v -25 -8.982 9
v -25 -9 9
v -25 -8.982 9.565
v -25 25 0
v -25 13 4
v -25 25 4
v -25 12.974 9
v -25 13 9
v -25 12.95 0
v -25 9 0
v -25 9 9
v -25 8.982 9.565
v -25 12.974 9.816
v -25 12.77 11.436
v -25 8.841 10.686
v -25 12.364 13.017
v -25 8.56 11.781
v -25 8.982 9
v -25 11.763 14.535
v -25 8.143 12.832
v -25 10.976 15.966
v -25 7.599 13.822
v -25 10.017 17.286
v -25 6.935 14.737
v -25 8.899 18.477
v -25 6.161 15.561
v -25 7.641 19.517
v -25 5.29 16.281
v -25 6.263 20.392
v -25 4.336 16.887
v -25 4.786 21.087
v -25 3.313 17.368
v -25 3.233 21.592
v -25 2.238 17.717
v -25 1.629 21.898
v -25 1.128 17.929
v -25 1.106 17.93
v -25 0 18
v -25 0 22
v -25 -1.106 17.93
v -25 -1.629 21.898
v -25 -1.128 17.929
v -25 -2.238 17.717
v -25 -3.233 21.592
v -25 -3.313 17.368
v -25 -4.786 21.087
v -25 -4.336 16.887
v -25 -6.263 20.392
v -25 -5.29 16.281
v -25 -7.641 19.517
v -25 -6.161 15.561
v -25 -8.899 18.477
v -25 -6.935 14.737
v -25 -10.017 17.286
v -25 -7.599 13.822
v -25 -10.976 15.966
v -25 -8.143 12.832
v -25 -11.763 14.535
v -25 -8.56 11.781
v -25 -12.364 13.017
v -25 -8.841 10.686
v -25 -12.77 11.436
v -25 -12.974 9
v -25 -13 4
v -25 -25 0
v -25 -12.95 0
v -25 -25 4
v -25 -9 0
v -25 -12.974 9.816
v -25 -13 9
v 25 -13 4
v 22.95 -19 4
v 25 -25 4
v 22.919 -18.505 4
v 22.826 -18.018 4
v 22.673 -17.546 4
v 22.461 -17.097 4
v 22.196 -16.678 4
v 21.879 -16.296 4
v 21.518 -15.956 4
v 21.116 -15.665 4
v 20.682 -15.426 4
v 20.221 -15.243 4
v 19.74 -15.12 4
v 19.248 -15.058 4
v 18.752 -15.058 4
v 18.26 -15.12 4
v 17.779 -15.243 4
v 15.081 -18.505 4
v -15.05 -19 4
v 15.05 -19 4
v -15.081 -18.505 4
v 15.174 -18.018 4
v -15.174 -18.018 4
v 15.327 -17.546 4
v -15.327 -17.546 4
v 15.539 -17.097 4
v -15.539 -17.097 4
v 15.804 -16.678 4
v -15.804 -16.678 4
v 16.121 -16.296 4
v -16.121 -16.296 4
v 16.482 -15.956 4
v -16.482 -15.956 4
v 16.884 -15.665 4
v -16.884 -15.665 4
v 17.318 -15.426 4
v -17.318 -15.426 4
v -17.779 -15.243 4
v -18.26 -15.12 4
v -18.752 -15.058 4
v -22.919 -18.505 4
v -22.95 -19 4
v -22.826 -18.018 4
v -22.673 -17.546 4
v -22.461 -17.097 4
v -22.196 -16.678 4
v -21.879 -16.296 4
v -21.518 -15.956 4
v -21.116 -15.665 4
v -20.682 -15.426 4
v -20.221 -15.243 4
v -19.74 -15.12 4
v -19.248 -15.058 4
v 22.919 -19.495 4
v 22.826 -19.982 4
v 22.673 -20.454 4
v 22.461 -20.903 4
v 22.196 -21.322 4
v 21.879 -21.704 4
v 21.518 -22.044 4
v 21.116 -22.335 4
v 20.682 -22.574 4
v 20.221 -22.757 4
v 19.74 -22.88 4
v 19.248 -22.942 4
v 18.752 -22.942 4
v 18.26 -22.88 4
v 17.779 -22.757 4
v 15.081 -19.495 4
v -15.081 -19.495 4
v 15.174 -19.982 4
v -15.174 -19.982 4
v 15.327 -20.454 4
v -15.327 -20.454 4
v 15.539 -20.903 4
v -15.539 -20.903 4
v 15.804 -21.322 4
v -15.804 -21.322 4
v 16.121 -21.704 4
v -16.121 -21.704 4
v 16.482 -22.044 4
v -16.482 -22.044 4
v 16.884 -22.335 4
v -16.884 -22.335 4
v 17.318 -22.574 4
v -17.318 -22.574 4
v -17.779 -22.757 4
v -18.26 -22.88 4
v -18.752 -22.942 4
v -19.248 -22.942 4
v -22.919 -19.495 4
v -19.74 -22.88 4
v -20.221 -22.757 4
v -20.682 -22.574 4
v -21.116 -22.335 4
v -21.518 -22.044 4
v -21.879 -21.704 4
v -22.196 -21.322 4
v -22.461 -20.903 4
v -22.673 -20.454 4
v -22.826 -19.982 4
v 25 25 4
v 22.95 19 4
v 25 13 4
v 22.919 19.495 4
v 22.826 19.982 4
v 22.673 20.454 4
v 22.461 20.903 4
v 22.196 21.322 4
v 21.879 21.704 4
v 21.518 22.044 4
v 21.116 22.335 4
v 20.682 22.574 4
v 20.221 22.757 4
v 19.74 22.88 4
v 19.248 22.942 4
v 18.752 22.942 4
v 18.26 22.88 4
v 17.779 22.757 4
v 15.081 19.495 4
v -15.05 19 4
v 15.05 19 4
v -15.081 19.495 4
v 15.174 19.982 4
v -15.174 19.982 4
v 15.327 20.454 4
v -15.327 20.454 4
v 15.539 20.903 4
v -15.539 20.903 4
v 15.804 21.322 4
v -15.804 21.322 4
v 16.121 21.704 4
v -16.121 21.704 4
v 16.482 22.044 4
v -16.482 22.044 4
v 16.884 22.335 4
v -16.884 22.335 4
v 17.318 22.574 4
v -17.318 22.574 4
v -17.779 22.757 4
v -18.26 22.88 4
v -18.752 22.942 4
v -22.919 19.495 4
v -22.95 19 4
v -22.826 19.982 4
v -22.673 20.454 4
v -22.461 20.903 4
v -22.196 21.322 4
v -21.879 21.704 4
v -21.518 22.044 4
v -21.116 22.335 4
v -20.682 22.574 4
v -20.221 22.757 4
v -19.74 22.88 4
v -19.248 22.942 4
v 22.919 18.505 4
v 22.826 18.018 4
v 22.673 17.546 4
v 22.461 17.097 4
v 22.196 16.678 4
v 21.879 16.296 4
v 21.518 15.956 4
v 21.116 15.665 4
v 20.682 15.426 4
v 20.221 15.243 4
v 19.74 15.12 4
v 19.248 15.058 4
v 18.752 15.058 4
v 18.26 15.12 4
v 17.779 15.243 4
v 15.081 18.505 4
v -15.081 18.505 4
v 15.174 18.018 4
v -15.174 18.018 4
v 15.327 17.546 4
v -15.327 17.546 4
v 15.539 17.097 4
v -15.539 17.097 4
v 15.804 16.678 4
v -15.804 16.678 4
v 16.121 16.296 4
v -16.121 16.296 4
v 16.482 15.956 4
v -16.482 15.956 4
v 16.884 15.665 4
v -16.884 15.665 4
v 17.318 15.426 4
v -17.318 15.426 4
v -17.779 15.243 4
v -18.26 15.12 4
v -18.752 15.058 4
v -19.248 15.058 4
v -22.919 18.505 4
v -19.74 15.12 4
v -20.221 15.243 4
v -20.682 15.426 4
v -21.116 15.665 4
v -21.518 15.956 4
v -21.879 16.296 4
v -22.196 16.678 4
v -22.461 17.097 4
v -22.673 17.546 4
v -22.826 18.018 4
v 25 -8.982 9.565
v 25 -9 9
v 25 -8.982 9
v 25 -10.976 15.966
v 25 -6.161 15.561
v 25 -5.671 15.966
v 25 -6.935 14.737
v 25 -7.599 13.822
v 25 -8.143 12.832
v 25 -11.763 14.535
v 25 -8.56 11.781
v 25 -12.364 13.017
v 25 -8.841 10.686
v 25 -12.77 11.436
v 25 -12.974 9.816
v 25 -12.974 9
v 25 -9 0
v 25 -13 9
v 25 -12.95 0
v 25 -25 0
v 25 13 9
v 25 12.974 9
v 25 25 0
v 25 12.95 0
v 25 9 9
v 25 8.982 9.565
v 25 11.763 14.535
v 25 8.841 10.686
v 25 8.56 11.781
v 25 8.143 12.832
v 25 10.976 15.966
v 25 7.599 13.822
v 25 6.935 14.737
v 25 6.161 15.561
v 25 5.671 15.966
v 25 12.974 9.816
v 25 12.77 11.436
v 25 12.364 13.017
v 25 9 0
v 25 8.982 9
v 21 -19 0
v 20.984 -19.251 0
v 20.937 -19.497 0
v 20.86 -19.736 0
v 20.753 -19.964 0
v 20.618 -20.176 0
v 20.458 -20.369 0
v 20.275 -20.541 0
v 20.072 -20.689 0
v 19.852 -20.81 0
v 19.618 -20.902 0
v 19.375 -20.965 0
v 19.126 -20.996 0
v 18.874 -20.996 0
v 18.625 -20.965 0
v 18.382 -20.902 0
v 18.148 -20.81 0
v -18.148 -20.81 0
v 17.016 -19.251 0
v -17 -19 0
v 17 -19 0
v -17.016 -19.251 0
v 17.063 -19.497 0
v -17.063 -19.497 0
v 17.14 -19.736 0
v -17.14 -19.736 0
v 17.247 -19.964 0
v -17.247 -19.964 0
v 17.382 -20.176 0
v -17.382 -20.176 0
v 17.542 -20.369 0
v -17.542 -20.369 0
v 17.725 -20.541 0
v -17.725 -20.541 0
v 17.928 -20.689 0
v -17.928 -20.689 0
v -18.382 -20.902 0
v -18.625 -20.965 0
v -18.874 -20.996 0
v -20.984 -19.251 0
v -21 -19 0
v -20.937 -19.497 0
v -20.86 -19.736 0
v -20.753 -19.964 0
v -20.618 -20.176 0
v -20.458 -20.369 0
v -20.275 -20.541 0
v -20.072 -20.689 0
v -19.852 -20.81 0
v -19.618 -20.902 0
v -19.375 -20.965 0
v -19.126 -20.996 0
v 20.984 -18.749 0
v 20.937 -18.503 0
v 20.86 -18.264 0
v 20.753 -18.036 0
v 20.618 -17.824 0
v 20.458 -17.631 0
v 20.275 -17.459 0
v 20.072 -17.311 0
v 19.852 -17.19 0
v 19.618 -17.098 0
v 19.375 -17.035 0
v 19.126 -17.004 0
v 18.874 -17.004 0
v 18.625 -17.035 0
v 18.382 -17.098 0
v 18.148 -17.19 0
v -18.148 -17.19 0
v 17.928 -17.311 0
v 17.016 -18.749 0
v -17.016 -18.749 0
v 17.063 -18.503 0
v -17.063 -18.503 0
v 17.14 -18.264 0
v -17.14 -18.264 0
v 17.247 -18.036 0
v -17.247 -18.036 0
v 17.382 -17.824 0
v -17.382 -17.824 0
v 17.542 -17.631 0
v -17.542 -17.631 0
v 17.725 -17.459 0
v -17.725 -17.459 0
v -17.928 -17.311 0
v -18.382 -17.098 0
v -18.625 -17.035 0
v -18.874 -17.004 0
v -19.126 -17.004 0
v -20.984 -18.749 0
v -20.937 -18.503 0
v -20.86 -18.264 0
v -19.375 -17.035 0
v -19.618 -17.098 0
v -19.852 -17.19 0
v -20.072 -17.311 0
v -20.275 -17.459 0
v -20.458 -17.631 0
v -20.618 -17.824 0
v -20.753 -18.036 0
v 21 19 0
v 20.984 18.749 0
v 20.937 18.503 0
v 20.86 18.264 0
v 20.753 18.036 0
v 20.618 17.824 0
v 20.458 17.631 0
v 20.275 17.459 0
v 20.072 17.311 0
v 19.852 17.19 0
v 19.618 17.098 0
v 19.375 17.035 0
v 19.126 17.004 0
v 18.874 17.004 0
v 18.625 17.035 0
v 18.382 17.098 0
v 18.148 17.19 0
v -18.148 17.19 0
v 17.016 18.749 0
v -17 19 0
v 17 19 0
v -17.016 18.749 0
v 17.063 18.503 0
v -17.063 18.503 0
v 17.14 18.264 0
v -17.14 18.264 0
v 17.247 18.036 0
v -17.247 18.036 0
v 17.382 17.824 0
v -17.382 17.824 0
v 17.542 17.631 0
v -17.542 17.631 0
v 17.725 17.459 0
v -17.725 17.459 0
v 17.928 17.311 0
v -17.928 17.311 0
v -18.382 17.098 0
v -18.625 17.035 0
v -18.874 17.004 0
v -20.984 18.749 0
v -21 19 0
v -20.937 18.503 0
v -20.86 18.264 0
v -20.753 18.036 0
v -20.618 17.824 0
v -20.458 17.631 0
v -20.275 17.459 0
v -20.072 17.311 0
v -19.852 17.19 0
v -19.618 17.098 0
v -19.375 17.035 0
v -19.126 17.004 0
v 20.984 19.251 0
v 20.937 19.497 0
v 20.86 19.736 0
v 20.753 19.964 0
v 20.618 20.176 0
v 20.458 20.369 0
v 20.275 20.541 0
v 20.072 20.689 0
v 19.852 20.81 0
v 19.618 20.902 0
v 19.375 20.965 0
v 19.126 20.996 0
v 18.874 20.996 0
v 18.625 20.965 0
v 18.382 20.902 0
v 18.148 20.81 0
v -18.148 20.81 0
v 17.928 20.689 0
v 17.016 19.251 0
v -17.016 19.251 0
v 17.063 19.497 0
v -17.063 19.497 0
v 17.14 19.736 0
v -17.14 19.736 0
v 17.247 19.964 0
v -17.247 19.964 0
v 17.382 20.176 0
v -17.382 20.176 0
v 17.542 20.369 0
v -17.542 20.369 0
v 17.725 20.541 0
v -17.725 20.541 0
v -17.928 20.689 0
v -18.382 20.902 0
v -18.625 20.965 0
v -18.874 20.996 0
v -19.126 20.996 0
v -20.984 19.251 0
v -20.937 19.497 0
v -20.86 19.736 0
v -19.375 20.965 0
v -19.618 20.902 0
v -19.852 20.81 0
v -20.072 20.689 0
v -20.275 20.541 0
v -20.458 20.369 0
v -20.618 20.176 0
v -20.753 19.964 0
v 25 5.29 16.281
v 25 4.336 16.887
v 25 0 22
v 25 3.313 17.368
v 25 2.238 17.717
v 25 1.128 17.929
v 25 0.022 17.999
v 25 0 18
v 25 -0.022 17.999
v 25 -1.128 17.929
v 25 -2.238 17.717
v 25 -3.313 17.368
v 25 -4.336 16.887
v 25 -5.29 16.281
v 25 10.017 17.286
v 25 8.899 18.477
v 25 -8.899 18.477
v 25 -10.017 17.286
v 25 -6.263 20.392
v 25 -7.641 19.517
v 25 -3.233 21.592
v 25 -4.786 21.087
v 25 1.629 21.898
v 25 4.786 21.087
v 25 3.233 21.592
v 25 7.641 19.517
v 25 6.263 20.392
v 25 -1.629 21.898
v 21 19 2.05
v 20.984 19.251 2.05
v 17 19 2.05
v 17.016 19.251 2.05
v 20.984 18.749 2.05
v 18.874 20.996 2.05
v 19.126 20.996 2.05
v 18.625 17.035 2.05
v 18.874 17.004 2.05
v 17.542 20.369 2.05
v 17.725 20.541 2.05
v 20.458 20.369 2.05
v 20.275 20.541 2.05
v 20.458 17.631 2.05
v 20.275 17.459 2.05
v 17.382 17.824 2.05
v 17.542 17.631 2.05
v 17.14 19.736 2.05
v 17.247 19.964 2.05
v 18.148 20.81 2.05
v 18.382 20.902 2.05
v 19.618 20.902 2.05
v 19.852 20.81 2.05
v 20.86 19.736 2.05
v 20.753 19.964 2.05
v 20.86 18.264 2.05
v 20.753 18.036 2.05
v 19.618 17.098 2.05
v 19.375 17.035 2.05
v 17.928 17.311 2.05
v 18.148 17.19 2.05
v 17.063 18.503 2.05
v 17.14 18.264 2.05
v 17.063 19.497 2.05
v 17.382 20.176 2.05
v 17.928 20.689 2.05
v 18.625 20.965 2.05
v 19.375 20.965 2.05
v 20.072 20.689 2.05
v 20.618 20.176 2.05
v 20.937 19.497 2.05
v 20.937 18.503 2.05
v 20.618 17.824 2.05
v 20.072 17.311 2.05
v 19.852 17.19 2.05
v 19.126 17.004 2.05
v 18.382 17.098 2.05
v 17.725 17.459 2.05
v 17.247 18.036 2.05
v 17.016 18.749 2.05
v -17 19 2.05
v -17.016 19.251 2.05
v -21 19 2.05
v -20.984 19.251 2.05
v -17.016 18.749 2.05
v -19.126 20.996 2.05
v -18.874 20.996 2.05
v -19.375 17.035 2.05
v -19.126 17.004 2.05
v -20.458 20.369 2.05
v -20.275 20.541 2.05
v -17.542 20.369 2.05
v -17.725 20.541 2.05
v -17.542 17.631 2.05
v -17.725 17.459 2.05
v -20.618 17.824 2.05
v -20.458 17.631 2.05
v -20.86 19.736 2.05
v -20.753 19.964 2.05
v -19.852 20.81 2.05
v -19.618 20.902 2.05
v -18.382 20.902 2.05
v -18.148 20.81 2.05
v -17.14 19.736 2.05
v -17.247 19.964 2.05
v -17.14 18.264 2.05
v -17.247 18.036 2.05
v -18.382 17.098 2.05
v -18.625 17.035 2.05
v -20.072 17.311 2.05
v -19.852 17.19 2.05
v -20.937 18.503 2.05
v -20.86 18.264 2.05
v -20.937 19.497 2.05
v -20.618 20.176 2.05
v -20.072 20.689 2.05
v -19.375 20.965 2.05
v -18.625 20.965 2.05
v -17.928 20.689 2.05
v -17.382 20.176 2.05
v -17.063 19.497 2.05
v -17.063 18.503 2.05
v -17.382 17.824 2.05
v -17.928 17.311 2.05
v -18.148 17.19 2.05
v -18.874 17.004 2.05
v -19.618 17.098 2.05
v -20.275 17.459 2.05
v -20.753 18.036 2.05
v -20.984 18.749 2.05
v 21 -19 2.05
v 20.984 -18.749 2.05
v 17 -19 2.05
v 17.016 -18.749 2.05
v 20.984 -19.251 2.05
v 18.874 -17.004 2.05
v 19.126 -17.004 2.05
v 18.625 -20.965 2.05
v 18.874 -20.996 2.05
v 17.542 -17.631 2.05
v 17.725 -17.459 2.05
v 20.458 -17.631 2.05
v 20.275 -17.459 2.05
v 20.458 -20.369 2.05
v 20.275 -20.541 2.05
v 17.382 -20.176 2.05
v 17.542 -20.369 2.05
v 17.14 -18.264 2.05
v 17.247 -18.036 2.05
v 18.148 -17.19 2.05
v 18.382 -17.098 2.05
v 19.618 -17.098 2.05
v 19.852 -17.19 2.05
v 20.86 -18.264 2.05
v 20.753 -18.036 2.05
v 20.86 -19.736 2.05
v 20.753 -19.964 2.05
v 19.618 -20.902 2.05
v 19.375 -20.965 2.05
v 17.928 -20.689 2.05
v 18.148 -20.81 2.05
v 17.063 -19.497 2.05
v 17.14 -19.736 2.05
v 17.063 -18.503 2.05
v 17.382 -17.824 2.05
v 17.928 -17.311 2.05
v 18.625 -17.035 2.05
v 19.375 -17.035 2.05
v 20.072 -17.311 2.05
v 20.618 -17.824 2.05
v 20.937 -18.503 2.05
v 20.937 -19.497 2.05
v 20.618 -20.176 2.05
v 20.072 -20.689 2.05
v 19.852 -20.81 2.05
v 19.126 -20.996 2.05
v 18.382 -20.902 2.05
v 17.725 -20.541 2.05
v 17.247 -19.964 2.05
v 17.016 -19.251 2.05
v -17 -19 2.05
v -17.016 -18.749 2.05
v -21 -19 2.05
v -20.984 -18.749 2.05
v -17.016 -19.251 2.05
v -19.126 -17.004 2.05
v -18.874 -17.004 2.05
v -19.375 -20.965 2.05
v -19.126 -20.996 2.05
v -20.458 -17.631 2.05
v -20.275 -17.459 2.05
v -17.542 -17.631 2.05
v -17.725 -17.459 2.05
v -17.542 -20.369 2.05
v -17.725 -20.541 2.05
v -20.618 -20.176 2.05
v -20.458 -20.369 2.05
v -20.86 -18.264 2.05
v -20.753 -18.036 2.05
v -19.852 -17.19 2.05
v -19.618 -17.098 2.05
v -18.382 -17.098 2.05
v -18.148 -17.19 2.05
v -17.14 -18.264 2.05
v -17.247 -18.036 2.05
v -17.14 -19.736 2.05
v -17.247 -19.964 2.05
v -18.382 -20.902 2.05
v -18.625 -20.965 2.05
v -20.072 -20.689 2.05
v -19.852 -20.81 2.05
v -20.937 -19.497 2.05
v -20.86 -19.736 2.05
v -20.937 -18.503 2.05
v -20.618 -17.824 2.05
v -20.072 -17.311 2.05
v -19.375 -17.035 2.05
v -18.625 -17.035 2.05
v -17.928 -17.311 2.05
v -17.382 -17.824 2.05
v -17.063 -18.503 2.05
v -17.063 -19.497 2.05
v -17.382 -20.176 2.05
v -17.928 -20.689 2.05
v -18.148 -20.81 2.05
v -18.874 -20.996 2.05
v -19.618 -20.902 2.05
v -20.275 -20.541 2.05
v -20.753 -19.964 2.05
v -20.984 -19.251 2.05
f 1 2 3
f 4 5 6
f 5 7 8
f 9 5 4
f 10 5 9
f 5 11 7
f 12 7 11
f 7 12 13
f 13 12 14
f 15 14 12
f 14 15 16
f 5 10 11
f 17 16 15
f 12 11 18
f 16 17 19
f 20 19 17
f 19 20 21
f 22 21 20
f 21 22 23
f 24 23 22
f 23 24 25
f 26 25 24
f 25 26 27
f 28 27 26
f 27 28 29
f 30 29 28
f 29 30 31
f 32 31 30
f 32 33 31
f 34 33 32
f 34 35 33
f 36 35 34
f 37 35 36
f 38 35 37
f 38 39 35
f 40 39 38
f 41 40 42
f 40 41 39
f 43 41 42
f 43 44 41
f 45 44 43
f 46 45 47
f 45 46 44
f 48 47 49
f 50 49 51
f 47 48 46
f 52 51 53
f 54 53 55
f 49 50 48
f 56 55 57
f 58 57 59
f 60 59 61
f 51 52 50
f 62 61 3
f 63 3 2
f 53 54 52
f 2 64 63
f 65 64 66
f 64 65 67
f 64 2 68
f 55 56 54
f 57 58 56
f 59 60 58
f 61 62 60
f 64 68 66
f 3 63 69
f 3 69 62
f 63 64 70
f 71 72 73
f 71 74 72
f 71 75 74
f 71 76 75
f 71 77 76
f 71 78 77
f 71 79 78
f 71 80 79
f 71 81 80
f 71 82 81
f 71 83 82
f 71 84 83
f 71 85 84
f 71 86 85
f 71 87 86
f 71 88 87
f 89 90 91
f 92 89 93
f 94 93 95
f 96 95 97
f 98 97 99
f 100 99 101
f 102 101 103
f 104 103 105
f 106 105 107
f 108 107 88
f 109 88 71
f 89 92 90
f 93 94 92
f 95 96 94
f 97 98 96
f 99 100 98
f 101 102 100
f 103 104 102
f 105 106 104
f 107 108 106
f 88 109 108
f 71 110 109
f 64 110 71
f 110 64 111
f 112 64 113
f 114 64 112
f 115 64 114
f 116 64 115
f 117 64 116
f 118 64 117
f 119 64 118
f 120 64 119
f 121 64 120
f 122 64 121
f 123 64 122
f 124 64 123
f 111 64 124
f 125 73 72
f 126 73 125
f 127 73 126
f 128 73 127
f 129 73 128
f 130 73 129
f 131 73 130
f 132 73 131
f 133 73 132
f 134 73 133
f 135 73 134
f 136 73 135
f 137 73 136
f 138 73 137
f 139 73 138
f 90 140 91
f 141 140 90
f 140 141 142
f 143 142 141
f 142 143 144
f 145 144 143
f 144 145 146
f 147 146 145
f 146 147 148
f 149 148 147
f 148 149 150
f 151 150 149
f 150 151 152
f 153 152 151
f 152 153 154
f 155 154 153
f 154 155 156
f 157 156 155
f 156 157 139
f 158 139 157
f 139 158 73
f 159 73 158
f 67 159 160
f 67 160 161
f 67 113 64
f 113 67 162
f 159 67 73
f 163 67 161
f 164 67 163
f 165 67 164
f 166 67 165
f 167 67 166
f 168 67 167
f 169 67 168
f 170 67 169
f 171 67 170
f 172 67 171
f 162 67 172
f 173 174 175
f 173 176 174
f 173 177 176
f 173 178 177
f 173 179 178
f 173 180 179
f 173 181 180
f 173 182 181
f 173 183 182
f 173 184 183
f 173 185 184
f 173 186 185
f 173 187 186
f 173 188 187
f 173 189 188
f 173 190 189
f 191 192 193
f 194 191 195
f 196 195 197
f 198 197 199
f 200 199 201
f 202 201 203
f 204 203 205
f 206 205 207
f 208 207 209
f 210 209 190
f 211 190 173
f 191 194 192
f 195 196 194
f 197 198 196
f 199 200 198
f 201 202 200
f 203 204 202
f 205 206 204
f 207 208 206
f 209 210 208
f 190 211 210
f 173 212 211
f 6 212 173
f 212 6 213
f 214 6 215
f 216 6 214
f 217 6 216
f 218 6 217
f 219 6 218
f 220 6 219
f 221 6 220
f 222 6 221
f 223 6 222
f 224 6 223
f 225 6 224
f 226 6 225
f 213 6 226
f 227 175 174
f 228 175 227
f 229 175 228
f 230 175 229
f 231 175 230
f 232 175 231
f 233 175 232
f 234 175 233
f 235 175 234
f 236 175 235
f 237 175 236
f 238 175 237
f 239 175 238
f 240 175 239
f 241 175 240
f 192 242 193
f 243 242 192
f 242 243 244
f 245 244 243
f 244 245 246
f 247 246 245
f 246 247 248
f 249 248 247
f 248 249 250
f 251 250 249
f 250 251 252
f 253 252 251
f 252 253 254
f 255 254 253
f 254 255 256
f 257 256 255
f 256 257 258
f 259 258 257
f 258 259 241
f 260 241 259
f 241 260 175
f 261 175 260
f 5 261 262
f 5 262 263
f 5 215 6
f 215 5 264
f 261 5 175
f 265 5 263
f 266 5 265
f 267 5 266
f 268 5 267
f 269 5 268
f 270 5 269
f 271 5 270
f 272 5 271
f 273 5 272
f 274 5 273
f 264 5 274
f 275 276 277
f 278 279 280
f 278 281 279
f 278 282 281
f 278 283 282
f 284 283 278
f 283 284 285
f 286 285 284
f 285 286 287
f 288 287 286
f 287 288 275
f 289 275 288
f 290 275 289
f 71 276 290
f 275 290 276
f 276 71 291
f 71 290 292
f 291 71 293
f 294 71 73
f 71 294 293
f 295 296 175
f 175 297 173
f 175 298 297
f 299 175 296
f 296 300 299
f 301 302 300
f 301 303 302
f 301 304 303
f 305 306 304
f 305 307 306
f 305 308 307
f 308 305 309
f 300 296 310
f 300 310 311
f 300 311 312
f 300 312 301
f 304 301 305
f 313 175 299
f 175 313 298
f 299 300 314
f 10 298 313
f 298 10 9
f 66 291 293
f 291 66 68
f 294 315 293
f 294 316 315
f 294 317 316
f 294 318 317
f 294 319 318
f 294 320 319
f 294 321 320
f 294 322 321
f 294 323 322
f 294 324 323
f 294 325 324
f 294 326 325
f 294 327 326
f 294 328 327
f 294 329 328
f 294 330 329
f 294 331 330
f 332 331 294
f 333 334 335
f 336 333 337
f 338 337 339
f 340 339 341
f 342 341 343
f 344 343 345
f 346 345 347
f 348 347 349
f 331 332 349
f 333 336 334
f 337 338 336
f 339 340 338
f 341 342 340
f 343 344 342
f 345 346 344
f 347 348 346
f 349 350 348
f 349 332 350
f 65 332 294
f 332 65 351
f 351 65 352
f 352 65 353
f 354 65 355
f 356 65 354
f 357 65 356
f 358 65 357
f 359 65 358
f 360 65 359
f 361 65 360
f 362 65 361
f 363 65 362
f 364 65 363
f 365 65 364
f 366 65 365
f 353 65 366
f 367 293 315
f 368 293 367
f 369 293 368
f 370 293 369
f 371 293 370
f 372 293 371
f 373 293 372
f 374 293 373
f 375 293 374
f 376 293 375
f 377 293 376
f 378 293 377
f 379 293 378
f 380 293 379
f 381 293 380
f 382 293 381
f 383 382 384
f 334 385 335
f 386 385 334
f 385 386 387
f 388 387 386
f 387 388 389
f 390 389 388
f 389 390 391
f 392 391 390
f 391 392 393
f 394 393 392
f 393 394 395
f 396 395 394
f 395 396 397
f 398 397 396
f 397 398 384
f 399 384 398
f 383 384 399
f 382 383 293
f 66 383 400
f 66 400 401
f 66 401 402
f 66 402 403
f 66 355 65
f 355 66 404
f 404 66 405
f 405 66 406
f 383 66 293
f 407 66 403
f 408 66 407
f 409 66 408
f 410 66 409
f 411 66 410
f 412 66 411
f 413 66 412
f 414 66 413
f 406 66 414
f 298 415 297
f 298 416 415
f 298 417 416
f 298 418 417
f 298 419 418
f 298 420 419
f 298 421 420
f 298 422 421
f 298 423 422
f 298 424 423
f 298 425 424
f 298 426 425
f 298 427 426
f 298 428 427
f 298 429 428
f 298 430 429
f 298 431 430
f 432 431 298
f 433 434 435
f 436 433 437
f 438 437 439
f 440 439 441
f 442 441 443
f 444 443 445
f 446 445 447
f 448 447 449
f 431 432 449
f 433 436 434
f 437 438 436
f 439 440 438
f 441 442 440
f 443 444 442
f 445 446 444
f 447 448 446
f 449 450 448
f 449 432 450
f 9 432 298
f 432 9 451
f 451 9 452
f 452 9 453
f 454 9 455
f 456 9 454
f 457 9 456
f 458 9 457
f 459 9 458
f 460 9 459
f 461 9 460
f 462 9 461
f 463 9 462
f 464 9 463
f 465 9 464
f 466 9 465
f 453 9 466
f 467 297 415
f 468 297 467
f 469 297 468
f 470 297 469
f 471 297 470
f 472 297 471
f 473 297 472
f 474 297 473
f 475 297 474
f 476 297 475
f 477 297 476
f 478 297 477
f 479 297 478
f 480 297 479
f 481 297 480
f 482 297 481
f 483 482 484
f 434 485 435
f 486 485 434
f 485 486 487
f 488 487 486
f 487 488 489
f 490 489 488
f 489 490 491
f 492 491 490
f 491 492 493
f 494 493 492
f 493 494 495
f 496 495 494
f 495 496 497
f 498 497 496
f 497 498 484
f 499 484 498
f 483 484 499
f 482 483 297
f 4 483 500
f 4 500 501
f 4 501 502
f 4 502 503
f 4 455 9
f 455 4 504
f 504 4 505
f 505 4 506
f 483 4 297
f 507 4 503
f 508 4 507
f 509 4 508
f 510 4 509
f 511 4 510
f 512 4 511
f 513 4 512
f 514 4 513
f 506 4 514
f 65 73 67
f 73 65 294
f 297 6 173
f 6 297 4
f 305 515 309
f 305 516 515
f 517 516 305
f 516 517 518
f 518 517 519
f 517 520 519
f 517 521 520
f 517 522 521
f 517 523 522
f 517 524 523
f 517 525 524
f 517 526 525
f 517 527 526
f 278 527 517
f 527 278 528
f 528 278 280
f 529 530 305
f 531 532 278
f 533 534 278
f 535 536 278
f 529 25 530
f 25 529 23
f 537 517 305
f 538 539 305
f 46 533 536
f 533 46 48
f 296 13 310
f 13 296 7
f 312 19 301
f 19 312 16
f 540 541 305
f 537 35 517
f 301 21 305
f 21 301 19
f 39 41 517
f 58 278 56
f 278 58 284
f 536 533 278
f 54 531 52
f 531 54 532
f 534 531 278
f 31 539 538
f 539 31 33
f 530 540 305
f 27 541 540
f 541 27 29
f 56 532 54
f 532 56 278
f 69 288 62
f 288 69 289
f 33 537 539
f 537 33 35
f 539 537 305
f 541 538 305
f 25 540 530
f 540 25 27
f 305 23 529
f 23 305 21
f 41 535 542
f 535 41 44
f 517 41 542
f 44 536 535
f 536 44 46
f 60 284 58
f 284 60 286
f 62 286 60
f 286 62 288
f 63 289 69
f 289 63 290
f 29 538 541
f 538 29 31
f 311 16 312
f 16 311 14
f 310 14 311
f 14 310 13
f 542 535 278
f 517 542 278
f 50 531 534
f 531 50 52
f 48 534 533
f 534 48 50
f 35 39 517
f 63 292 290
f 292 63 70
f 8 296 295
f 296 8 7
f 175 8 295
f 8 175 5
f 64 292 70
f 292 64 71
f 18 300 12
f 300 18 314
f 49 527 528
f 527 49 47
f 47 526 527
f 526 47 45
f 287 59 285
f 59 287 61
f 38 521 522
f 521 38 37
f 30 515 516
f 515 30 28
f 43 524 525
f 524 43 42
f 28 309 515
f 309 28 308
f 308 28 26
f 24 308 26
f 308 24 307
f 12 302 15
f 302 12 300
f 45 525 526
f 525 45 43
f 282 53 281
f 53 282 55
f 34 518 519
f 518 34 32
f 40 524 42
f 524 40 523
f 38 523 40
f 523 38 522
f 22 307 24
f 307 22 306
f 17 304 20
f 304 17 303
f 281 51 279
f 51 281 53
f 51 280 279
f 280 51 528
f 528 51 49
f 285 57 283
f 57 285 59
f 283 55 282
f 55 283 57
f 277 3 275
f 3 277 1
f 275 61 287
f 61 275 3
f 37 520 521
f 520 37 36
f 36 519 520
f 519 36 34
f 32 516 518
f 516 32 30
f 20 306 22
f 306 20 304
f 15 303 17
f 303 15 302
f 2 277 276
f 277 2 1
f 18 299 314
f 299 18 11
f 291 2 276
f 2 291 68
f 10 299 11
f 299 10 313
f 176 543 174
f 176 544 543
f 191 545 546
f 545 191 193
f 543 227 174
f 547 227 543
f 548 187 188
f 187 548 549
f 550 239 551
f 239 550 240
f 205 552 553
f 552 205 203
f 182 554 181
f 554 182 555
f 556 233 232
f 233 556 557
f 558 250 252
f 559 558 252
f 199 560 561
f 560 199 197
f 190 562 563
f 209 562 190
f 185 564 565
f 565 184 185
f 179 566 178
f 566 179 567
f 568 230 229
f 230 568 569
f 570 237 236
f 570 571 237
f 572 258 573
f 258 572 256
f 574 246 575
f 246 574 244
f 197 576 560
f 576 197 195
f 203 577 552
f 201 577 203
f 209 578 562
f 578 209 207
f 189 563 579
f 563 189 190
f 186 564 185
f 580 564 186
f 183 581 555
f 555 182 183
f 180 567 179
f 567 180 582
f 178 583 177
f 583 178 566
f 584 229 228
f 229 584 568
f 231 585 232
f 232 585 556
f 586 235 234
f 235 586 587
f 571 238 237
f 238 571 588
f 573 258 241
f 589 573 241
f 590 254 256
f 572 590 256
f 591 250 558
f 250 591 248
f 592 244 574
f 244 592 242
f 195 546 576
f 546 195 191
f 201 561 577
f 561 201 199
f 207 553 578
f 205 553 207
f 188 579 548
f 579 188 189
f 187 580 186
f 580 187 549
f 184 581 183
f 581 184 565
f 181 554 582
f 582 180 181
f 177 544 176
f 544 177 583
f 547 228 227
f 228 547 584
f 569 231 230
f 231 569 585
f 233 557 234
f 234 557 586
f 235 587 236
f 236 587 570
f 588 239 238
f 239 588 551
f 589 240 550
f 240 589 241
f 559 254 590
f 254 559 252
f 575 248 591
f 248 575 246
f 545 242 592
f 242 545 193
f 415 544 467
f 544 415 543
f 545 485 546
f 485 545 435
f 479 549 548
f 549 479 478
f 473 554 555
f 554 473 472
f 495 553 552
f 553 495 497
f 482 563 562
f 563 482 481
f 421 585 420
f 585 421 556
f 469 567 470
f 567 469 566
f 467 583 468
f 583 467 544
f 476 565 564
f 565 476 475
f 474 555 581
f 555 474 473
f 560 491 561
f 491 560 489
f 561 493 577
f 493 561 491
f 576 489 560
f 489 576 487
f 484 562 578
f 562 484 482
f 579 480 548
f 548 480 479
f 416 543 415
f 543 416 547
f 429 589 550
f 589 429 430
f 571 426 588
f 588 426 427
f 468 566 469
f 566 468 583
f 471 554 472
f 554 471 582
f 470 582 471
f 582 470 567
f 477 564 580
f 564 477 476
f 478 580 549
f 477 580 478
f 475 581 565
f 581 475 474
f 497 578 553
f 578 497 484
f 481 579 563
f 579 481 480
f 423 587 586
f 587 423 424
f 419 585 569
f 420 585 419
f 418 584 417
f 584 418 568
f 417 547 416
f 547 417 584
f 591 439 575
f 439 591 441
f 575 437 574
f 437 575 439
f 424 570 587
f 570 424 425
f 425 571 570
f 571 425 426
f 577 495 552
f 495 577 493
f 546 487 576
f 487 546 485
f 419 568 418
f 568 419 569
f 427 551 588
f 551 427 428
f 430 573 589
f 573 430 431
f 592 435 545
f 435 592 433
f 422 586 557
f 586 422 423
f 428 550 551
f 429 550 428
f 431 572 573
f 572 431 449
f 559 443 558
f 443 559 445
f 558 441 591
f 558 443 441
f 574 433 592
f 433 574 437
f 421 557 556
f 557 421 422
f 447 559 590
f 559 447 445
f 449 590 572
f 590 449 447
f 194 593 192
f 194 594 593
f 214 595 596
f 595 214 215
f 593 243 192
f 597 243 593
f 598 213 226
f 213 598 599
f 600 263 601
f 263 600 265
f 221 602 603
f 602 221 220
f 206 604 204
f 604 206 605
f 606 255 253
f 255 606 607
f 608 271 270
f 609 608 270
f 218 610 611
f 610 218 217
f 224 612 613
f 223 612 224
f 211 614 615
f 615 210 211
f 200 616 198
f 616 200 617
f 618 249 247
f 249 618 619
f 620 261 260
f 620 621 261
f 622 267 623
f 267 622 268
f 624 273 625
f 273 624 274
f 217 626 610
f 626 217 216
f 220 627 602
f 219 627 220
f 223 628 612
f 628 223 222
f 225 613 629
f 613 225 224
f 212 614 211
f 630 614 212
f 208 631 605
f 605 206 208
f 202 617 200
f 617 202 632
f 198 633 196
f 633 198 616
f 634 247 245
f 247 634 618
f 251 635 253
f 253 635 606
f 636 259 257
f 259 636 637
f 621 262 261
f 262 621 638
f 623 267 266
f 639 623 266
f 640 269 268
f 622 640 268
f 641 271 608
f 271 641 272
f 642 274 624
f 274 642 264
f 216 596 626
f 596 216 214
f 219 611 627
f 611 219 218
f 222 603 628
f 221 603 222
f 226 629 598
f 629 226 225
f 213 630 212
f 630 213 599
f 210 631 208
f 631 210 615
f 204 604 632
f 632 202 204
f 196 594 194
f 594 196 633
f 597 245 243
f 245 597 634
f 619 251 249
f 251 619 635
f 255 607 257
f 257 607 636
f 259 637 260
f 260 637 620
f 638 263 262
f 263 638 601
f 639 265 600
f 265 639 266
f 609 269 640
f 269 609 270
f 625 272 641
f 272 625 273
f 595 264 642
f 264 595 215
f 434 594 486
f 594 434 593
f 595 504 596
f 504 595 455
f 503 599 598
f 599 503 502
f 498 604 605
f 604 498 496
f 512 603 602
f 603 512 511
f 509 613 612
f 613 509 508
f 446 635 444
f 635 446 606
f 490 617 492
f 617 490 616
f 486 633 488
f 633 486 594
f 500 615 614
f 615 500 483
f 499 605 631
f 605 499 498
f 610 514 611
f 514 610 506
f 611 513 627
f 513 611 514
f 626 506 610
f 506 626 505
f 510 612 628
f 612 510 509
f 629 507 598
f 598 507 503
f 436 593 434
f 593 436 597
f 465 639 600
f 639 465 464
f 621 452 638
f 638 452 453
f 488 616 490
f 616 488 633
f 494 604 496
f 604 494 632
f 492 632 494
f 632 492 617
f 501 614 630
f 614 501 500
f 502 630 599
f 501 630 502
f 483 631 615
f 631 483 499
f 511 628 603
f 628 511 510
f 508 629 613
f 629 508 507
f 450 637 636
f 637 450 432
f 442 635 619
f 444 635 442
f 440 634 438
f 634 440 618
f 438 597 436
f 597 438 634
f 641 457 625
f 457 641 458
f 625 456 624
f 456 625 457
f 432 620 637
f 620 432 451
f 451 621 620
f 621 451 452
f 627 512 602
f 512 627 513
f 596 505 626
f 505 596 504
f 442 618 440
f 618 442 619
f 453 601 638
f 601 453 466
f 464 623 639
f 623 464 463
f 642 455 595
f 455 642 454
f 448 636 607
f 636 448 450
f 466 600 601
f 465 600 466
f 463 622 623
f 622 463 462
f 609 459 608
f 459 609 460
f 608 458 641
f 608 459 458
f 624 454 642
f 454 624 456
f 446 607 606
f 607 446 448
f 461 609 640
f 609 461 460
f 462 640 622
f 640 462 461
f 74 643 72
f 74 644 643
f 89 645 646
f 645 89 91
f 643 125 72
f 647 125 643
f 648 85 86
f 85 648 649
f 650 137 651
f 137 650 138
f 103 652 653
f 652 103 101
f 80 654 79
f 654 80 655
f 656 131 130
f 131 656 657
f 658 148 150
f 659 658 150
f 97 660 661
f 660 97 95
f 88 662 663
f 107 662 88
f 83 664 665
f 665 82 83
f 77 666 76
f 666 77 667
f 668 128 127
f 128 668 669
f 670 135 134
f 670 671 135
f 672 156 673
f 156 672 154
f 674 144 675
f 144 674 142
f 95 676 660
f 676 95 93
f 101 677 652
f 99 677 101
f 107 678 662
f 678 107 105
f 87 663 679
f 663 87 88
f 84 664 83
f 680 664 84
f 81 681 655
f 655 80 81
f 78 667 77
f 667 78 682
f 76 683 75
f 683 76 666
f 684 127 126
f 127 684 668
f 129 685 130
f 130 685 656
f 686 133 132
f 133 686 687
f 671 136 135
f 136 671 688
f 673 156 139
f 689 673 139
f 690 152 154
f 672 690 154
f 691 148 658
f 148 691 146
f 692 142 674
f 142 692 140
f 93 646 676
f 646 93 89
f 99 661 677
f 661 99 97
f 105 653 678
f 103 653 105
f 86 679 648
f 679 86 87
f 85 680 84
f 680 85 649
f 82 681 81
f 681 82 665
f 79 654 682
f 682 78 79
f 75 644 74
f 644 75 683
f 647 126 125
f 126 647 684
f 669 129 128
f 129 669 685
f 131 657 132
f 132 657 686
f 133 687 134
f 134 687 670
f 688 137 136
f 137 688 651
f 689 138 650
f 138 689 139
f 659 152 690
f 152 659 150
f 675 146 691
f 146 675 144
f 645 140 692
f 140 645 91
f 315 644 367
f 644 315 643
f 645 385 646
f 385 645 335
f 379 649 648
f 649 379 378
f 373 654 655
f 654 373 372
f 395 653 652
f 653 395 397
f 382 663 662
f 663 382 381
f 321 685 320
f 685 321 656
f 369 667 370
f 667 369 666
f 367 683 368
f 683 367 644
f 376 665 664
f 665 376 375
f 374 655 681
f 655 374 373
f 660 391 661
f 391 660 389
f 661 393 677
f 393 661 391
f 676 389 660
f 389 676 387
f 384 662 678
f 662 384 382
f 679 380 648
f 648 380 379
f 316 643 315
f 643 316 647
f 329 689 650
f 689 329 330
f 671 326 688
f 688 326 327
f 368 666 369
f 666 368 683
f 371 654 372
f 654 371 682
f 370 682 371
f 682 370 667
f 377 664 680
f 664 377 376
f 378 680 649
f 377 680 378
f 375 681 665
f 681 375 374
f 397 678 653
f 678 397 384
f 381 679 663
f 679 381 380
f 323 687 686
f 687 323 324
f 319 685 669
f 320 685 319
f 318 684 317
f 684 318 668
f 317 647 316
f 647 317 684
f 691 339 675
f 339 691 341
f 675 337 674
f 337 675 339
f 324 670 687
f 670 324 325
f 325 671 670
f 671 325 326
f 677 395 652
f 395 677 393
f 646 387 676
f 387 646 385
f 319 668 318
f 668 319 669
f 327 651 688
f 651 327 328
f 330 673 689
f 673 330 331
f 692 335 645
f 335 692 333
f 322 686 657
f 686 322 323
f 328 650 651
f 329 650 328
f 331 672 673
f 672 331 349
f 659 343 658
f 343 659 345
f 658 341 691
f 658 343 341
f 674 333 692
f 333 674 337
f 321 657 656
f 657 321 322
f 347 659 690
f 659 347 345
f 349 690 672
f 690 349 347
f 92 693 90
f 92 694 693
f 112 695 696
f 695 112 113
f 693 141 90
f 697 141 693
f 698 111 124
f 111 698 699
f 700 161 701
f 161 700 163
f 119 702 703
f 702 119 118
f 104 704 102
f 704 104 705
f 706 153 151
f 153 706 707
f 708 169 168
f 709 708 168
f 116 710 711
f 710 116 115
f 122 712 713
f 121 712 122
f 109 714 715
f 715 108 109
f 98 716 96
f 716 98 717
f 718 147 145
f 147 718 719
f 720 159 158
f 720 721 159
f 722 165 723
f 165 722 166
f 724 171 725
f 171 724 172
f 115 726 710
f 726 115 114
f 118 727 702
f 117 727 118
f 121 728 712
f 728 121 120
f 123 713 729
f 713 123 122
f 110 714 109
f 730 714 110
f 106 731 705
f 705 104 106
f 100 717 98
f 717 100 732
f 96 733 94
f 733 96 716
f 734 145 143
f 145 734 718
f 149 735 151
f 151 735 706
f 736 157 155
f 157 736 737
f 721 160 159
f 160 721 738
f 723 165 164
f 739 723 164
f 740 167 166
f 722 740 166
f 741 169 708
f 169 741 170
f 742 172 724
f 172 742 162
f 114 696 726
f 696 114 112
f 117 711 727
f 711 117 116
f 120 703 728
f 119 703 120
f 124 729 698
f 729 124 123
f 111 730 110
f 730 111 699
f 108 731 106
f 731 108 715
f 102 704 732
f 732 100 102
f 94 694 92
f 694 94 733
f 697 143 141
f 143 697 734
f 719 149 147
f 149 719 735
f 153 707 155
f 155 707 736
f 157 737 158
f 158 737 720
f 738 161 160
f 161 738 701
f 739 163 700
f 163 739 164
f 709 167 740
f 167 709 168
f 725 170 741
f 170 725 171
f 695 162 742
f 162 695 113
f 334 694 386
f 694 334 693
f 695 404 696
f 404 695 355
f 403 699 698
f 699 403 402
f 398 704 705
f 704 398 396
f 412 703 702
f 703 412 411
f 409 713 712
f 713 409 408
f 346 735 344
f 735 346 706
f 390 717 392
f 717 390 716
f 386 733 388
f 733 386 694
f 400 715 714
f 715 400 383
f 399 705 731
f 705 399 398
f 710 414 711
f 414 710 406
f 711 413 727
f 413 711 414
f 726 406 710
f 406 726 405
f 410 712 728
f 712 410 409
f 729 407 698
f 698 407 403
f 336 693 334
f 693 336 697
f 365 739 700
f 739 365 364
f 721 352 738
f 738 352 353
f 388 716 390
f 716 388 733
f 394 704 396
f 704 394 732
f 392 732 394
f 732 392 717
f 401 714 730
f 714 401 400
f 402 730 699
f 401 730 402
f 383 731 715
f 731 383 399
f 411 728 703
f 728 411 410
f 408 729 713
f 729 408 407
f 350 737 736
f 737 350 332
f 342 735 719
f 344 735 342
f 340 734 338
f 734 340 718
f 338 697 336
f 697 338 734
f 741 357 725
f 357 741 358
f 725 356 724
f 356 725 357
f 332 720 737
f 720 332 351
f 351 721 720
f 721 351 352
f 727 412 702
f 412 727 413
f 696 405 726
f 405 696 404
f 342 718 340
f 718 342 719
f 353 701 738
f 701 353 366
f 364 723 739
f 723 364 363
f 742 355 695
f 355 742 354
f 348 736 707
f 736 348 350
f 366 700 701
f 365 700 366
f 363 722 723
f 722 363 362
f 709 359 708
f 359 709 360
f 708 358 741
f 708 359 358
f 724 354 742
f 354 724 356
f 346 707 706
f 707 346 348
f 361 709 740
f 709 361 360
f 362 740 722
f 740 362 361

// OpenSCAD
// Thingy to hold a cable to a wall or other surface.
// Meant to be sturdy, to support "thick" cables.

cable_diameter = 17 + 1;

holder_thickness = 4;

screw_hole_diameter = 4;
screw_counter_sunk_diameter = 8;
// screw_counter_sunk_angle = 45; Always assumed
screw_support_thickness = 4;
screw_support_width = 2;

holder_length = 50;

// Calculated fields
cable_radius = cable_diameter / 2.0;
holder_width = ( cable_radius + holder_thickness + screw_counter_sunk_diameter + 2*screw_support_width ) * 2;
holder_base_thickness = screw_support_thickness;
screw_hole_radius = screw_hole_diameter / 2.0;
screw_counter_sunk_radius = screw_counter_sunk_diameter / 2.0;

pad = 0.05;
$fn = 50;

// Its basically a block


module base() {
    translate([0,0,holder_base_thickness/2.0])
    cube([holder_length, holder_width, holder_base_thickness], center=true);
}


// Cutter and cuttee - halfpipe with base.
module half_pipe(radius, offset, length) {
    difference() {
        union() {
            translate([0,0,offset])
            rotate([0,90,0])
            cylinder(r = radius, h = length, center=true);
            translate([0,0,offset/2.0])
            cube([length, radius*2, offset], center=true);
        }
        // Cut the bottom half
        translate([0,0,-offset/2.0])
        cube([length+2*pad, radius*2, offset], center=true);        
    }        
}

// Make a simple screwhole
module screw_hole() {
    translate([0,0,-screw_counter_sunk_radius/2.0]) {
        translate([0,0,-screw_counter_sunk_radius/2.0])
        cylinder(r1 = 0, r2 = screw_counter_sunk_radius, h = screw_counter_sunk_radius);
    
        translate([0,0,-screw_support_thickness * 10])
        cylinder(r = screw_hole_radius, h = screw_support_thickness * 10);
    }
}

module all_screw_holes() {
    translate([
            holder_length/2.0-screw_counter_sunk_radius-screw_support_width,
            holder_width/2.0-screw_counter_sunk_radius-screw_support_width,
            holder_base_thickness+pad
        ]) screw_hole();
    translate([
            -(holder_length/2.0-screw_counter_sunk_radius-screw_support_width),
            holder_width/2.0-screw_counter_sunk_radius-screw_support_width,
            holder_base_thickness+pad
        ]) screw_hole();
    translate([
            holder_length/2.0-screw_counter_sunk_radius-screw_support_width,
            -(holder_width/2.0-screw_counter_sunk_radius-screw_support_width),
            holder_base_thickness+pad
        ]) screw_hole();
    translate([
            -(holder_length/2.0-screw_counter_sunk_radius-screw_support_width),
            -(holder_width/2.0-screw_counter_sunk_radius-screw_support_width),
            holder_base_thickness+pad
        ]) screw_hole();

}

module main() {
    difference() {
        base();
        translate([0,0,-pad])
        #half_pipe(cable_radius+holder_thickness-pad, cable_radius-pad, holder_length + 2);
    }
    difference() {
        half_pipe(cable_radius+holder_thickness, cable_radius, holder_length);
        half_pipe(cable_radius, cable_radius, holder_length + 2);
    }
}

difference() {
    main();
    all_screw_holes();
}

//translate([holder_length/2.0,0,cable_radius])
// sphere(r=cable_radius);
